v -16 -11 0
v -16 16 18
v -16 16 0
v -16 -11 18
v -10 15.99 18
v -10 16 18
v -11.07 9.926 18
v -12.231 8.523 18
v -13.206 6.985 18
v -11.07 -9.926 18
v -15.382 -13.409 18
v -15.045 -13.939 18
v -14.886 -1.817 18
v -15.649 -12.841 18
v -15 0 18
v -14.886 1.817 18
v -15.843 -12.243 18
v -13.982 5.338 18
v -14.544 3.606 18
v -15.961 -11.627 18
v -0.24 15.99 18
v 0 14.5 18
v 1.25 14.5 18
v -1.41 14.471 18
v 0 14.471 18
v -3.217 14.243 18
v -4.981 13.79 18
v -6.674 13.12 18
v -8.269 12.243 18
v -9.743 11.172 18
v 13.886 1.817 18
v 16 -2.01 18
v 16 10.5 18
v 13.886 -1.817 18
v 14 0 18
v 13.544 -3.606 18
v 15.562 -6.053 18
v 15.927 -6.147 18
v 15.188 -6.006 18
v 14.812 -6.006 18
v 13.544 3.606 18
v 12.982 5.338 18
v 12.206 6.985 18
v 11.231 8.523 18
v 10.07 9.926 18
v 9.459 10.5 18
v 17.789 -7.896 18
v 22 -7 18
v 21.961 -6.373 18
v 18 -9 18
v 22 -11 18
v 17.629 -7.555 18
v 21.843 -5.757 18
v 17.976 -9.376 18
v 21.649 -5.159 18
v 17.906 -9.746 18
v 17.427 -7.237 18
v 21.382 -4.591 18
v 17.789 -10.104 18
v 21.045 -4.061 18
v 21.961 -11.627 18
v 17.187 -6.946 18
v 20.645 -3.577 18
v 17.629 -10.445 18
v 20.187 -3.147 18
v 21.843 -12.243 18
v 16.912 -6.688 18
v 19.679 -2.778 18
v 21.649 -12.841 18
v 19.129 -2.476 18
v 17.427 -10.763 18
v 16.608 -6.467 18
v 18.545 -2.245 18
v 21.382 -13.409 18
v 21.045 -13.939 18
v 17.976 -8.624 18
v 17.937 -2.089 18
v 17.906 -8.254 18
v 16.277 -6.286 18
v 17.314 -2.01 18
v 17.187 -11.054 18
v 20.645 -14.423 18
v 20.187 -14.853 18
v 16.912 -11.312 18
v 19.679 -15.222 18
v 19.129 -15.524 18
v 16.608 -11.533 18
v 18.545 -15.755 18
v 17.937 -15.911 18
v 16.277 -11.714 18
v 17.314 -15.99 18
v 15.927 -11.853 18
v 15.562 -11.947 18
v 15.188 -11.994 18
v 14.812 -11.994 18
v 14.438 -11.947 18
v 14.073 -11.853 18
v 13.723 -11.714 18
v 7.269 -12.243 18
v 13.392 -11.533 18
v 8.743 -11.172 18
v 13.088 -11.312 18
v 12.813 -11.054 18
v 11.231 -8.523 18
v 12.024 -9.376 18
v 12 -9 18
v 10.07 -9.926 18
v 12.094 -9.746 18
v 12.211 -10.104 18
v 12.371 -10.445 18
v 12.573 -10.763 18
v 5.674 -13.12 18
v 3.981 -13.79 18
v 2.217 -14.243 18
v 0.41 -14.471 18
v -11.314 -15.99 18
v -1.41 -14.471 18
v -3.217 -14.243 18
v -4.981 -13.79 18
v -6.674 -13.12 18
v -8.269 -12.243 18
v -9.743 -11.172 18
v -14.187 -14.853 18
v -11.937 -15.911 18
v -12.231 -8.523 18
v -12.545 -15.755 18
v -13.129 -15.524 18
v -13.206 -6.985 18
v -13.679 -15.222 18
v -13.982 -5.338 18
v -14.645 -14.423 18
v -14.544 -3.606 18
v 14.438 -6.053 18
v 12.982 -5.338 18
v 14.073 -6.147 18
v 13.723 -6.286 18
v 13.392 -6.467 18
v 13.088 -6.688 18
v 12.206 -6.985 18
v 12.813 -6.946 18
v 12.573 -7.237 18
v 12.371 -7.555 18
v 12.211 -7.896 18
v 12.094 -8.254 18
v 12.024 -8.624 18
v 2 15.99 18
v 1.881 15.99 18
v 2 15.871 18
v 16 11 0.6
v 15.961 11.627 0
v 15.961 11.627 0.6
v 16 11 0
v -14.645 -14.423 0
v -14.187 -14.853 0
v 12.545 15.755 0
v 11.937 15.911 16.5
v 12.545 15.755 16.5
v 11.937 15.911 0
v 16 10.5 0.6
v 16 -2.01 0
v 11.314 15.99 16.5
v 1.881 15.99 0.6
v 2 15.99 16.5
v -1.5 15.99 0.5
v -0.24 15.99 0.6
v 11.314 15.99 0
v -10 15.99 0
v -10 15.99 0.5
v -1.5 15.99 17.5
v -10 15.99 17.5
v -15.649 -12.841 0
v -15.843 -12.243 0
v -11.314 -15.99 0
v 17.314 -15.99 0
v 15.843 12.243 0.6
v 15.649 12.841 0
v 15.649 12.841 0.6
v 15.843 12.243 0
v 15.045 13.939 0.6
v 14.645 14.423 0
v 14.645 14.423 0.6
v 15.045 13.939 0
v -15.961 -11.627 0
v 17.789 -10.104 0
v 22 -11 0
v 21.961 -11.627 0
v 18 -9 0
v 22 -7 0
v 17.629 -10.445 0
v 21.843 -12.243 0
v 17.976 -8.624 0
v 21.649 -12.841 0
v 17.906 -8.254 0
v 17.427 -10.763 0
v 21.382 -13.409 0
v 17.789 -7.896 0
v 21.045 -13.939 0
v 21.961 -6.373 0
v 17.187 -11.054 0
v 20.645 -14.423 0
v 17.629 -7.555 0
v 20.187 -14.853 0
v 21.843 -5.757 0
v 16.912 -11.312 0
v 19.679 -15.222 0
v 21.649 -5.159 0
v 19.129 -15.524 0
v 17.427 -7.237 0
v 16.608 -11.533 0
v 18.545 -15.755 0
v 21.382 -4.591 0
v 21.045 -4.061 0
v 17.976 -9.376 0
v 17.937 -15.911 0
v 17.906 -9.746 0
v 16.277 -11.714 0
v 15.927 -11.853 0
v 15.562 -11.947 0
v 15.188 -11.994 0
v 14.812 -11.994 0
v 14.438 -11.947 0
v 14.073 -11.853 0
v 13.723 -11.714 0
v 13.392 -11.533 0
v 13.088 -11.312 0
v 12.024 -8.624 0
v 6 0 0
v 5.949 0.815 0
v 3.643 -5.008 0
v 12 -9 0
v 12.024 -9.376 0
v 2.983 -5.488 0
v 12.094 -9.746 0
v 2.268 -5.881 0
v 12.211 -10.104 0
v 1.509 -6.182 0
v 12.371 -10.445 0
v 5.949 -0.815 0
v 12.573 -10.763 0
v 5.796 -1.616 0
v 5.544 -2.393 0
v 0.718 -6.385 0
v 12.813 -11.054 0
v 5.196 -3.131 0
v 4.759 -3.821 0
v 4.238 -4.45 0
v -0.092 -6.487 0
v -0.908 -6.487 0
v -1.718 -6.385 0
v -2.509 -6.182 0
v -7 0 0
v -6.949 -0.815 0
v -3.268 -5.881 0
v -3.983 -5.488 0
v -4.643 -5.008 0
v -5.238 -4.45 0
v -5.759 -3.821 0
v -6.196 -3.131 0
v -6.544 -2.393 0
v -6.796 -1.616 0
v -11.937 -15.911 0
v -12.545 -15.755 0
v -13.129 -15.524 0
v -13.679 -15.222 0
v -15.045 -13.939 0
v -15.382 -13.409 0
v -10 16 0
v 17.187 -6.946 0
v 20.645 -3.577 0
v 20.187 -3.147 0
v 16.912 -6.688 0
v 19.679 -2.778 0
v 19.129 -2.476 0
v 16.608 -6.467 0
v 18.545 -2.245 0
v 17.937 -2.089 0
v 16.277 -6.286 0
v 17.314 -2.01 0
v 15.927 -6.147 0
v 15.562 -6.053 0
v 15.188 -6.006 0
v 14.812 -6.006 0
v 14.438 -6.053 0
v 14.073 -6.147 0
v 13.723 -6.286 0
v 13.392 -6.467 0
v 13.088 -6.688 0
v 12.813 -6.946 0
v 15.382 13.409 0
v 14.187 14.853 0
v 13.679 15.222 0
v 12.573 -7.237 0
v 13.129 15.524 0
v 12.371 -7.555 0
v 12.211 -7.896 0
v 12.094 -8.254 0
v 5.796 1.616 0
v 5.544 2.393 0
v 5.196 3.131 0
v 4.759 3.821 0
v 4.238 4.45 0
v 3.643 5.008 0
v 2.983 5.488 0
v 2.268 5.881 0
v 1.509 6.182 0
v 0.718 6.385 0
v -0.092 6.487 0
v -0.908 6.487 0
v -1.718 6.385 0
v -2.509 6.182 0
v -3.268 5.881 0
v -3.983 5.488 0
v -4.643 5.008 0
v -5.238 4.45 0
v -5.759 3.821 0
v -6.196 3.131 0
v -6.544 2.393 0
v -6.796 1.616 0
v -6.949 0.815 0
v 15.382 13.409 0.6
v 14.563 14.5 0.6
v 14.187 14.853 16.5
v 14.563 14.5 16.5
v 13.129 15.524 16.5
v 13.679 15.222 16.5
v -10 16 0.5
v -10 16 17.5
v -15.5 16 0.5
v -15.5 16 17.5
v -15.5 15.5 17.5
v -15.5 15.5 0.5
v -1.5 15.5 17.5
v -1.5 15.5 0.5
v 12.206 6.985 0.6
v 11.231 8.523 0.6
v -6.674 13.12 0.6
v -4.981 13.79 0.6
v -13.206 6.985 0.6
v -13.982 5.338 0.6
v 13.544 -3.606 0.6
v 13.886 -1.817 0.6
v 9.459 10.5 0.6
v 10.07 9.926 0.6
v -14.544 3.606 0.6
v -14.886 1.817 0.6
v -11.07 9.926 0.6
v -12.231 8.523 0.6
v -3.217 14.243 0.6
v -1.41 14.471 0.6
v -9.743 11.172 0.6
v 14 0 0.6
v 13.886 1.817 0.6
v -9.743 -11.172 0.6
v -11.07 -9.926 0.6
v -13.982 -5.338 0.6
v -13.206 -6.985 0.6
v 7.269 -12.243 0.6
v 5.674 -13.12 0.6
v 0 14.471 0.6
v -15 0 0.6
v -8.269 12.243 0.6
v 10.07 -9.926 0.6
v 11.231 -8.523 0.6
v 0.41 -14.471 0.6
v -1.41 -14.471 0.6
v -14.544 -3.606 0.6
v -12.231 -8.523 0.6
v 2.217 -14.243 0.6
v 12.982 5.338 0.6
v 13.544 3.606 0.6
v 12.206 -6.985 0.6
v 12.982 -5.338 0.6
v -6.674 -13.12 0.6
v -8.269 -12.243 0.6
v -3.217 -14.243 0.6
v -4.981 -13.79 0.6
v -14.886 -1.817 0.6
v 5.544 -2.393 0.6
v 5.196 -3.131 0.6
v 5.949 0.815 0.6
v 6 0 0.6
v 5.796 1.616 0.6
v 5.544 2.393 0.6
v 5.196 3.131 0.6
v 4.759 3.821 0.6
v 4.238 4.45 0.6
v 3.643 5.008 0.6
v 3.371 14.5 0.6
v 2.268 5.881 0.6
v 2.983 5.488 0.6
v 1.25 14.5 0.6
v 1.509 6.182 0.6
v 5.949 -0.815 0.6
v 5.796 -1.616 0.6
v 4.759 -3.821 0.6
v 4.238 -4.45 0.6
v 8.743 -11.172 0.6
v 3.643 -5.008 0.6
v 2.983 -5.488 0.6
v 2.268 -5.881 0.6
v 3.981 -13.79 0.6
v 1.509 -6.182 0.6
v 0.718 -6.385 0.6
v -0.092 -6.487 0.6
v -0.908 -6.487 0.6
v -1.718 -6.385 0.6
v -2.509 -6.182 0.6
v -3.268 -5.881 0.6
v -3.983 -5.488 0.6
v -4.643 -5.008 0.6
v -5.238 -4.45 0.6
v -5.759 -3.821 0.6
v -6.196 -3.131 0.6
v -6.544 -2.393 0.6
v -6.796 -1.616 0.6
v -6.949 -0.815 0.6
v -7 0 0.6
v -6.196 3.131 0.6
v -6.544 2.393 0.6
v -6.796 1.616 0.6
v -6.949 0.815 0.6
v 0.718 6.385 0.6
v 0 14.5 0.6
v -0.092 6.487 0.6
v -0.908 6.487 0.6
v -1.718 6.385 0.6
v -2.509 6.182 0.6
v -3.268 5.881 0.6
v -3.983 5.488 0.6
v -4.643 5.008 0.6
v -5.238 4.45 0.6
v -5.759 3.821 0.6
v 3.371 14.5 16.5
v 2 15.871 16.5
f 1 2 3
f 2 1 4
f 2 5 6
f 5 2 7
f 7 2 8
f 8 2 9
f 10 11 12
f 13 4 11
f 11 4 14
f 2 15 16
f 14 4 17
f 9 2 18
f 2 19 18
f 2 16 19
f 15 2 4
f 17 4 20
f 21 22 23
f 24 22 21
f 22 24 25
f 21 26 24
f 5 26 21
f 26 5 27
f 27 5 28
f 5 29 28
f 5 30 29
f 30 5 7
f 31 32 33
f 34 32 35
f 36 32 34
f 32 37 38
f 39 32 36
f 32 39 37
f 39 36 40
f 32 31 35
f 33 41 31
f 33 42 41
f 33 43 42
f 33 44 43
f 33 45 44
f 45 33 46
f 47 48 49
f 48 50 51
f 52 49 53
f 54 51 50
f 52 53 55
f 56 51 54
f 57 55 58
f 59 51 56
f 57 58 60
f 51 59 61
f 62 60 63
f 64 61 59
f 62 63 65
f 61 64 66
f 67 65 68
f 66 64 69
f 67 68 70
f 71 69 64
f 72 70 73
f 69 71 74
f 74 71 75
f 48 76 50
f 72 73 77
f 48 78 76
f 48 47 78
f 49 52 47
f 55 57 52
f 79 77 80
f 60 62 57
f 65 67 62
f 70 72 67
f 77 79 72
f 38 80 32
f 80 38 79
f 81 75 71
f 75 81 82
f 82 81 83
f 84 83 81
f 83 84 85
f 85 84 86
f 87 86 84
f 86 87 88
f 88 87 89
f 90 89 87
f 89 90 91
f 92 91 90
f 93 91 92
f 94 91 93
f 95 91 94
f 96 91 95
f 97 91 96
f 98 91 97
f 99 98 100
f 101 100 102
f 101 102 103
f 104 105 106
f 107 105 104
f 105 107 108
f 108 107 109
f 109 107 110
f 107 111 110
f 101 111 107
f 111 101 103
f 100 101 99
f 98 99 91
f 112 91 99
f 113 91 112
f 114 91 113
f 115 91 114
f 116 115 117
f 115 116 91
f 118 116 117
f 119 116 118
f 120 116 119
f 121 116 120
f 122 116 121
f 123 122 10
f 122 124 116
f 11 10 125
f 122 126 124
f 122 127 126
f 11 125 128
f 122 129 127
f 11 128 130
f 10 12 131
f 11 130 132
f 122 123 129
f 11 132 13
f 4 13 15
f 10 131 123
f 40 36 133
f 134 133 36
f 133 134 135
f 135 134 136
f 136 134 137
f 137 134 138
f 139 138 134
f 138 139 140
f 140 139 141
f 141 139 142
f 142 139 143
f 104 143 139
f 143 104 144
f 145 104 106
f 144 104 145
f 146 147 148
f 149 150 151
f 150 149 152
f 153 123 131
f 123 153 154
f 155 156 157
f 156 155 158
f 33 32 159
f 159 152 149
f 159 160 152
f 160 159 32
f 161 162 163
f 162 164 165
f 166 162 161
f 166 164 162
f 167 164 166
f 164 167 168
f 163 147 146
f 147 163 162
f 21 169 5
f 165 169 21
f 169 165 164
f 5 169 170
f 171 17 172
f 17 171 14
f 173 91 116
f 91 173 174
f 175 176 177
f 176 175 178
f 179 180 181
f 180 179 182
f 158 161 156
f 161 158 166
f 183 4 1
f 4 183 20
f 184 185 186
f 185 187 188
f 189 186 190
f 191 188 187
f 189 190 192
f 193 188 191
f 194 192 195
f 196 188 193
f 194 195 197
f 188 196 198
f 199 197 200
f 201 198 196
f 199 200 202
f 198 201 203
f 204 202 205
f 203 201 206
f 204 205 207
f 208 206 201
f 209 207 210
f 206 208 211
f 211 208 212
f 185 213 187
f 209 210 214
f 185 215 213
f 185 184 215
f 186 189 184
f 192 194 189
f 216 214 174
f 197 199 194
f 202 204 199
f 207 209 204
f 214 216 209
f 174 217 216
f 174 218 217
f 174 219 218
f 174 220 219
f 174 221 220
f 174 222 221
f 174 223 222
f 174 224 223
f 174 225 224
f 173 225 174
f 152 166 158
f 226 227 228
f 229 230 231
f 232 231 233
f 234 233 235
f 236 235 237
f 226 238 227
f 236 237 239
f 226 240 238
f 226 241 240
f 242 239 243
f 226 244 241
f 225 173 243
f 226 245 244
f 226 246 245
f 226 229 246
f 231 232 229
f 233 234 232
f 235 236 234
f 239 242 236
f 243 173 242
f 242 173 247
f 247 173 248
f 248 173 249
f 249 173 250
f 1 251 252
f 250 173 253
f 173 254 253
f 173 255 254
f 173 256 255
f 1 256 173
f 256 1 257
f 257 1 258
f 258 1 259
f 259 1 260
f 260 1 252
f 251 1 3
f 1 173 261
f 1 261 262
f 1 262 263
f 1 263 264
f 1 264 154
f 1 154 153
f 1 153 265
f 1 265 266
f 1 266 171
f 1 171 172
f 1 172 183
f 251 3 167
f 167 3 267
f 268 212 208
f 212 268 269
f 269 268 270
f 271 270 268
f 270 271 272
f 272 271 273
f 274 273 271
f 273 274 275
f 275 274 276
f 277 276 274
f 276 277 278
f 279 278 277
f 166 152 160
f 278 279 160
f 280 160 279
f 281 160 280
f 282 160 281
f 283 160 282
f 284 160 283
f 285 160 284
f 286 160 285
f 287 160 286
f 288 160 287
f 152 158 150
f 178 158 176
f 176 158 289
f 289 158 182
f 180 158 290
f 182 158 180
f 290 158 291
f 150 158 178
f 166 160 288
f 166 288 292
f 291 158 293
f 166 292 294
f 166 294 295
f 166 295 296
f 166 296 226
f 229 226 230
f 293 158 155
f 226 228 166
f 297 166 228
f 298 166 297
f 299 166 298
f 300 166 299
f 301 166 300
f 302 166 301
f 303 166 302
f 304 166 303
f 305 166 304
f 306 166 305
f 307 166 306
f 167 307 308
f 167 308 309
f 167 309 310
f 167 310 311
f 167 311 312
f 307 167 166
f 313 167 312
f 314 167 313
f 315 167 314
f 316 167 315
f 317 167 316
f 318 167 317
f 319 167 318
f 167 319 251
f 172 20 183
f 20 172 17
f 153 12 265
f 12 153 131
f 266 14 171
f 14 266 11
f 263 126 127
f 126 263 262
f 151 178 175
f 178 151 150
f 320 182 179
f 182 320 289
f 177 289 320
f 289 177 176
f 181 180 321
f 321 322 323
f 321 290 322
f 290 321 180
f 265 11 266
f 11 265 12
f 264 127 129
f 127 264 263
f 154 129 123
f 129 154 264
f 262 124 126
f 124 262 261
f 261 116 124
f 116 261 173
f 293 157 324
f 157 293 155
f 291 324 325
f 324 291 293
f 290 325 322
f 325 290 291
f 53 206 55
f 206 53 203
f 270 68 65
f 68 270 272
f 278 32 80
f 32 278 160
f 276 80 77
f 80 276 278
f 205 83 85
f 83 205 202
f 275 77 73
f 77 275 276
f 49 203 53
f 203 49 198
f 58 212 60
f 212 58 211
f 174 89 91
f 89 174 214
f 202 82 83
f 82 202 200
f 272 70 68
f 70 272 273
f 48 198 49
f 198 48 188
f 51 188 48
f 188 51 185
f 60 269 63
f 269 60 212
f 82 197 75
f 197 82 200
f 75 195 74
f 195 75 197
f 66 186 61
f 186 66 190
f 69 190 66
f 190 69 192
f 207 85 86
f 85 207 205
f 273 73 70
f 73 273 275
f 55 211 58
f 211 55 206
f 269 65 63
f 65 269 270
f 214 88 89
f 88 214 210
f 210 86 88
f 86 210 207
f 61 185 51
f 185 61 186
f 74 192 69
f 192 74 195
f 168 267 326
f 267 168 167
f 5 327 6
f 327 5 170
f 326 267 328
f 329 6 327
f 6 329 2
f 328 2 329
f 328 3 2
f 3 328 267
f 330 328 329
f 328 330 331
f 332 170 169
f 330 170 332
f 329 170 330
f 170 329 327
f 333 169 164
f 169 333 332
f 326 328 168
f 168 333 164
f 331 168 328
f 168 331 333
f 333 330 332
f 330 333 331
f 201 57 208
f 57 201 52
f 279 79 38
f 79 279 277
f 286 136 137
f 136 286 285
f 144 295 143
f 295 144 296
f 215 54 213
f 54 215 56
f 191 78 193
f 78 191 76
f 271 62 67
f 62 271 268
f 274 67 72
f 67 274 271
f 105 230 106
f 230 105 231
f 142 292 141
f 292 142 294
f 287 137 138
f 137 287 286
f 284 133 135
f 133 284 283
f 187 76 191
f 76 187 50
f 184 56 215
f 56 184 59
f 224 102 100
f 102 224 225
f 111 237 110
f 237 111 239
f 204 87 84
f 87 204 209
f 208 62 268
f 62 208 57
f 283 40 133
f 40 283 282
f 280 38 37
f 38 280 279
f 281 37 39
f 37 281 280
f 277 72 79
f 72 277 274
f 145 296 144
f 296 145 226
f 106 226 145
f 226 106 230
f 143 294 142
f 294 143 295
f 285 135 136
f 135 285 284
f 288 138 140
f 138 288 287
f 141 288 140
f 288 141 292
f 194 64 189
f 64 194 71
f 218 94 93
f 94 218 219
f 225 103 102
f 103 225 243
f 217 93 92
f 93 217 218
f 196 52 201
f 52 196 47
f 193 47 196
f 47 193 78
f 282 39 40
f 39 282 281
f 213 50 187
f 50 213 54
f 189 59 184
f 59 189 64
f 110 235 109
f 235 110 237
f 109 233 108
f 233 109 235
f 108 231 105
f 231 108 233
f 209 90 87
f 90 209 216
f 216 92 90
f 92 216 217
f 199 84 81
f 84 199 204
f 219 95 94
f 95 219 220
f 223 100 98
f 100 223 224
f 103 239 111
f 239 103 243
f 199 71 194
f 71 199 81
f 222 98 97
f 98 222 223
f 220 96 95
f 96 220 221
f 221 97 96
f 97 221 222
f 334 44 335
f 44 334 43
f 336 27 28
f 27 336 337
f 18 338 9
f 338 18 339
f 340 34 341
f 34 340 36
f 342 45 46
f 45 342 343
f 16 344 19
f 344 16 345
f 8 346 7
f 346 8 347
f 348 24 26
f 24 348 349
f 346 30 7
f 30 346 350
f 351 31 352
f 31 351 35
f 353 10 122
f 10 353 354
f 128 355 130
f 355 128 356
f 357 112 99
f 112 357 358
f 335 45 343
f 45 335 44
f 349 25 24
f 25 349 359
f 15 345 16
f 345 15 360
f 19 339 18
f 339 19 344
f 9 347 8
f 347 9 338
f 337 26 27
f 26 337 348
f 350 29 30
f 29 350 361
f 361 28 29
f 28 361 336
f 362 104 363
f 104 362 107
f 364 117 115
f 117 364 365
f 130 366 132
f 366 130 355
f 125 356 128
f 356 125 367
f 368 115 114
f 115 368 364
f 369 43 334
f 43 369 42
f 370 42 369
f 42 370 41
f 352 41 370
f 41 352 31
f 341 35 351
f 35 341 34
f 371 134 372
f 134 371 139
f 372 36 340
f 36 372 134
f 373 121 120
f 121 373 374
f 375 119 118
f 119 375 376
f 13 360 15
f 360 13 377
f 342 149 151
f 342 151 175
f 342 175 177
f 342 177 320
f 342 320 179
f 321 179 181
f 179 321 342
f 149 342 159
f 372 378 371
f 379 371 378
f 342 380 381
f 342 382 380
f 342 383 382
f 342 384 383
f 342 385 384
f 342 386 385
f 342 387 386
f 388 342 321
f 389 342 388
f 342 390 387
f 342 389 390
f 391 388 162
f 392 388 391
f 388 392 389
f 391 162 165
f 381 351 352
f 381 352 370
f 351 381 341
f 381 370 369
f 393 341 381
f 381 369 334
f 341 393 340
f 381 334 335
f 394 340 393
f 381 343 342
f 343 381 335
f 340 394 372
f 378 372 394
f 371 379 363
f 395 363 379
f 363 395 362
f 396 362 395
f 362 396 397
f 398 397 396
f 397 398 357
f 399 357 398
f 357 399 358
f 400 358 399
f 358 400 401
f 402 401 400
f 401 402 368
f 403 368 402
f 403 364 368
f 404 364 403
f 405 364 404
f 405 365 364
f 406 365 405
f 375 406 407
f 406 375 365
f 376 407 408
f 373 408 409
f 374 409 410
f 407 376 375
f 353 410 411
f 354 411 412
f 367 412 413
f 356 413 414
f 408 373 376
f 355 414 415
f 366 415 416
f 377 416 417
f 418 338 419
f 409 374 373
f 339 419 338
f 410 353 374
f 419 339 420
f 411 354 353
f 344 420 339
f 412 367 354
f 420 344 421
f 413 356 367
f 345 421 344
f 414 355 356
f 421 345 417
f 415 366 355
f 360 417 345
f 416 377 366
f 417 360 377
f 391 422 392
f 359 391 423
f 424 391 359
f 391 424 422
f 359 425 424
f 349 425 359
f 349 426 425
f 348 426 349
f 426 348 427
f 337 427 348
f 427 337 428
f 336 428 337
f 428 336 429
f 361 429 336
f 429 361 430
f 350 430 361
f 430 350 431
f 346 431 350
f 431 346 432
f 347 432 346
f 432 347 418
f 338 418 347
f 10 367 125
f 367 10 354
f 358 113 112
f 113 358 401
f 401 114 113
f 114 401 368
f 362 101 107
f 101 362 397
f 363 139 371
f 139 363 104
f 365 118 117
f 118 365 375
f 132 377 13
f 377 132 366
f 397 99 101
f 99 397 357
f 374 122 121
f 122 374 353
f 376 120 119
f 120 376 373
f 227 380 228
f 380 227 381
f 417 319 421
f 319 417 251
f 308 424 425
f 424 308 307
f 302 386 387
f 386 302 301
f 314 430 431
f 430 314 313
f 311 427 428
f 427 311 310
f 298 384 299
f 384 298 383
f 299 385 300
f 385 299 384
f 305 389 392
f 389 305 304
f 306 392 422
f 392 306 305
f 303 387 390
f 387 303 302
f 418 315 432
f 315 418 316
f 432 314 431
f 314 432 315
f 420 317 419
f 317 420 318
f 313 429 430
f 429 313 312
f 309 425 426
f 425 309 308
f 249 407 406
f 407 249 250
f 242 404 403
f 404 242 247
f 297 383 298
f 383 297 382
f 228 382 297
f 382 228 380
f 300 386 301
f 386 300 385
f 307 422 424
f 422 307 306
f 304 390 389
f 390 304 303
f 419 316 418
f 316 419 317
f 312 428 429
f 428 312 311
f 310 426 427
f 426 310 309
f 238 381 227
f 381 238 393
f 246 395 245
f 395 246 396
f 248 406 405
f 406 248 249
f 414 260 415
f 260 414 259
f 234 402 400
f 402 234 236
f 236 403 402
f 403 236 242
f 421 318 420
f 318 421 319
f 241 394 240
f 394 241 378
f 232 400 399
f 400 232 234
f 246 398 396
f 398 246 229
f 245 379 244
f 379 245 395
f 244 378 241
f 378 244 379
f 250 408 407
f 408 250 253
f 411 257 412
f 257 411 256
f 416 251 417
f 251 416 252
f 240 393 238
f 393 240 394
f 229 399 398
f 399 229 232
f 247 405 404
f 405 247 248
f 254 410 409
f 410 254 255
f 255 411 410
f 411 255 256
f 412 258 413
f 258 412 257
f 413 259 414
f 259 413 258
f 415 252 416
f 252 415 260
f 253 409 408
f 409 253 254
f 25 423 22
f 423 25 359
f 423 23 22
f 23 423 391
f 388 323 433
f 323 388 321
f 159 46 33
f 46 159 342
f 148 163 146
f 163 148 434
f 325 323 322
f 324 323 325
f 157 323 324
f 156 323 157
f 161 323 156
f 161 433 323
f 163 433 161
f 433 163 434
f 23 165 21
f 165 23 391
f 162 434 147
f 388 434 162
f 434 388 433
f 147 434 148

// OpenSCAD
$fn = 50;


difference() {
	union() {
		hull() {
			translate(v = [-11.0000000000, 11.0000000000, 0]) {
				cylinder(h = 18, r = 5);
			}
			translate(v = [11.0000000000, 11.0000000000, 0]) {
				cylinder(h = 18, r = 5);
			}
			translate(v = [-11.0000000000, -11.0000000000, 0]) {
				cylinder(h = 18, r = 5);
			}
			translate(v = [11.0000000000, -11.0000000000, 0]) {
				cylinder(h = 18, r = 5);
			}
		}
		translate(v = [7.5000000000, -9.0000000000, 0]) {
			hull() {
				translate(v = [-9.5000000000, 2.0000000000, 0]) {
					cylinder(h = 18, r = 5);
				}
				translate(v = [9.5000000000, 2.0000000000, 0]) {
					cylinder(h = 18, r = 5);
				}
				translate(v = [-9.5000000000, -2.0000000000, 0]) {
					cylinder(h = 18, r = 5);
				}
				translate(v = [9.5000000000, -2.0000000000, 0]) {
					cylinder(h = 18, r = 5);
				}
			}
		}
		translate(v = [-16.0000000000, 10.0000000000, 0]) {
			cube(size = [6, 6, 18]);
		}
	}
	union() {
		translate(v = [-15.5000000000, 15.5000000000, 0.5000000000]) {
			cube(size = [14, 0.5000000000, 17.0000000000]);
		}
		translate(v = [15.0000000000, -9.0000000000, -50.0000000000]) {
			cylinder(h = 100, r = 3.0000000000);
		}
		translate(v = [-0.5000000000, 0.0000000000, 0.6000000000]) {
			cylinder(h = 20.4000000000, r = 14.5000000000);
		}
		translate(v = [-0.5000000000, 0.0000000000, -9.0000000000]) {
			cylinder(h = 18, r = 6.5000000000);
		}
		translate(v = [0.0000000000, 10.5000000000, 0.6000000000]) {
			cube(size = [16.0000000000, 4, 20.4000000000]);
		}
		translate(v = [2.0000000000, 10.5000000000, 16.5000000000]) {
			cube(size = [14.0000000000, 7, 1.5000000000]);
		}
		translate(v = [-3.0000000000, 18.7500000000, 0.6000000000]) {
			rotate(a = [0, 0, -45]) {
				cube(size = [10, 1.5000000000, 20.4000000000]);
			}
		}
		translate(v = [2.2500000000, 11.0000000000, 0.6000000000]) {
			cube(size = [7.5000000000, 2, 17.4000000000]);
		}
	}
}
